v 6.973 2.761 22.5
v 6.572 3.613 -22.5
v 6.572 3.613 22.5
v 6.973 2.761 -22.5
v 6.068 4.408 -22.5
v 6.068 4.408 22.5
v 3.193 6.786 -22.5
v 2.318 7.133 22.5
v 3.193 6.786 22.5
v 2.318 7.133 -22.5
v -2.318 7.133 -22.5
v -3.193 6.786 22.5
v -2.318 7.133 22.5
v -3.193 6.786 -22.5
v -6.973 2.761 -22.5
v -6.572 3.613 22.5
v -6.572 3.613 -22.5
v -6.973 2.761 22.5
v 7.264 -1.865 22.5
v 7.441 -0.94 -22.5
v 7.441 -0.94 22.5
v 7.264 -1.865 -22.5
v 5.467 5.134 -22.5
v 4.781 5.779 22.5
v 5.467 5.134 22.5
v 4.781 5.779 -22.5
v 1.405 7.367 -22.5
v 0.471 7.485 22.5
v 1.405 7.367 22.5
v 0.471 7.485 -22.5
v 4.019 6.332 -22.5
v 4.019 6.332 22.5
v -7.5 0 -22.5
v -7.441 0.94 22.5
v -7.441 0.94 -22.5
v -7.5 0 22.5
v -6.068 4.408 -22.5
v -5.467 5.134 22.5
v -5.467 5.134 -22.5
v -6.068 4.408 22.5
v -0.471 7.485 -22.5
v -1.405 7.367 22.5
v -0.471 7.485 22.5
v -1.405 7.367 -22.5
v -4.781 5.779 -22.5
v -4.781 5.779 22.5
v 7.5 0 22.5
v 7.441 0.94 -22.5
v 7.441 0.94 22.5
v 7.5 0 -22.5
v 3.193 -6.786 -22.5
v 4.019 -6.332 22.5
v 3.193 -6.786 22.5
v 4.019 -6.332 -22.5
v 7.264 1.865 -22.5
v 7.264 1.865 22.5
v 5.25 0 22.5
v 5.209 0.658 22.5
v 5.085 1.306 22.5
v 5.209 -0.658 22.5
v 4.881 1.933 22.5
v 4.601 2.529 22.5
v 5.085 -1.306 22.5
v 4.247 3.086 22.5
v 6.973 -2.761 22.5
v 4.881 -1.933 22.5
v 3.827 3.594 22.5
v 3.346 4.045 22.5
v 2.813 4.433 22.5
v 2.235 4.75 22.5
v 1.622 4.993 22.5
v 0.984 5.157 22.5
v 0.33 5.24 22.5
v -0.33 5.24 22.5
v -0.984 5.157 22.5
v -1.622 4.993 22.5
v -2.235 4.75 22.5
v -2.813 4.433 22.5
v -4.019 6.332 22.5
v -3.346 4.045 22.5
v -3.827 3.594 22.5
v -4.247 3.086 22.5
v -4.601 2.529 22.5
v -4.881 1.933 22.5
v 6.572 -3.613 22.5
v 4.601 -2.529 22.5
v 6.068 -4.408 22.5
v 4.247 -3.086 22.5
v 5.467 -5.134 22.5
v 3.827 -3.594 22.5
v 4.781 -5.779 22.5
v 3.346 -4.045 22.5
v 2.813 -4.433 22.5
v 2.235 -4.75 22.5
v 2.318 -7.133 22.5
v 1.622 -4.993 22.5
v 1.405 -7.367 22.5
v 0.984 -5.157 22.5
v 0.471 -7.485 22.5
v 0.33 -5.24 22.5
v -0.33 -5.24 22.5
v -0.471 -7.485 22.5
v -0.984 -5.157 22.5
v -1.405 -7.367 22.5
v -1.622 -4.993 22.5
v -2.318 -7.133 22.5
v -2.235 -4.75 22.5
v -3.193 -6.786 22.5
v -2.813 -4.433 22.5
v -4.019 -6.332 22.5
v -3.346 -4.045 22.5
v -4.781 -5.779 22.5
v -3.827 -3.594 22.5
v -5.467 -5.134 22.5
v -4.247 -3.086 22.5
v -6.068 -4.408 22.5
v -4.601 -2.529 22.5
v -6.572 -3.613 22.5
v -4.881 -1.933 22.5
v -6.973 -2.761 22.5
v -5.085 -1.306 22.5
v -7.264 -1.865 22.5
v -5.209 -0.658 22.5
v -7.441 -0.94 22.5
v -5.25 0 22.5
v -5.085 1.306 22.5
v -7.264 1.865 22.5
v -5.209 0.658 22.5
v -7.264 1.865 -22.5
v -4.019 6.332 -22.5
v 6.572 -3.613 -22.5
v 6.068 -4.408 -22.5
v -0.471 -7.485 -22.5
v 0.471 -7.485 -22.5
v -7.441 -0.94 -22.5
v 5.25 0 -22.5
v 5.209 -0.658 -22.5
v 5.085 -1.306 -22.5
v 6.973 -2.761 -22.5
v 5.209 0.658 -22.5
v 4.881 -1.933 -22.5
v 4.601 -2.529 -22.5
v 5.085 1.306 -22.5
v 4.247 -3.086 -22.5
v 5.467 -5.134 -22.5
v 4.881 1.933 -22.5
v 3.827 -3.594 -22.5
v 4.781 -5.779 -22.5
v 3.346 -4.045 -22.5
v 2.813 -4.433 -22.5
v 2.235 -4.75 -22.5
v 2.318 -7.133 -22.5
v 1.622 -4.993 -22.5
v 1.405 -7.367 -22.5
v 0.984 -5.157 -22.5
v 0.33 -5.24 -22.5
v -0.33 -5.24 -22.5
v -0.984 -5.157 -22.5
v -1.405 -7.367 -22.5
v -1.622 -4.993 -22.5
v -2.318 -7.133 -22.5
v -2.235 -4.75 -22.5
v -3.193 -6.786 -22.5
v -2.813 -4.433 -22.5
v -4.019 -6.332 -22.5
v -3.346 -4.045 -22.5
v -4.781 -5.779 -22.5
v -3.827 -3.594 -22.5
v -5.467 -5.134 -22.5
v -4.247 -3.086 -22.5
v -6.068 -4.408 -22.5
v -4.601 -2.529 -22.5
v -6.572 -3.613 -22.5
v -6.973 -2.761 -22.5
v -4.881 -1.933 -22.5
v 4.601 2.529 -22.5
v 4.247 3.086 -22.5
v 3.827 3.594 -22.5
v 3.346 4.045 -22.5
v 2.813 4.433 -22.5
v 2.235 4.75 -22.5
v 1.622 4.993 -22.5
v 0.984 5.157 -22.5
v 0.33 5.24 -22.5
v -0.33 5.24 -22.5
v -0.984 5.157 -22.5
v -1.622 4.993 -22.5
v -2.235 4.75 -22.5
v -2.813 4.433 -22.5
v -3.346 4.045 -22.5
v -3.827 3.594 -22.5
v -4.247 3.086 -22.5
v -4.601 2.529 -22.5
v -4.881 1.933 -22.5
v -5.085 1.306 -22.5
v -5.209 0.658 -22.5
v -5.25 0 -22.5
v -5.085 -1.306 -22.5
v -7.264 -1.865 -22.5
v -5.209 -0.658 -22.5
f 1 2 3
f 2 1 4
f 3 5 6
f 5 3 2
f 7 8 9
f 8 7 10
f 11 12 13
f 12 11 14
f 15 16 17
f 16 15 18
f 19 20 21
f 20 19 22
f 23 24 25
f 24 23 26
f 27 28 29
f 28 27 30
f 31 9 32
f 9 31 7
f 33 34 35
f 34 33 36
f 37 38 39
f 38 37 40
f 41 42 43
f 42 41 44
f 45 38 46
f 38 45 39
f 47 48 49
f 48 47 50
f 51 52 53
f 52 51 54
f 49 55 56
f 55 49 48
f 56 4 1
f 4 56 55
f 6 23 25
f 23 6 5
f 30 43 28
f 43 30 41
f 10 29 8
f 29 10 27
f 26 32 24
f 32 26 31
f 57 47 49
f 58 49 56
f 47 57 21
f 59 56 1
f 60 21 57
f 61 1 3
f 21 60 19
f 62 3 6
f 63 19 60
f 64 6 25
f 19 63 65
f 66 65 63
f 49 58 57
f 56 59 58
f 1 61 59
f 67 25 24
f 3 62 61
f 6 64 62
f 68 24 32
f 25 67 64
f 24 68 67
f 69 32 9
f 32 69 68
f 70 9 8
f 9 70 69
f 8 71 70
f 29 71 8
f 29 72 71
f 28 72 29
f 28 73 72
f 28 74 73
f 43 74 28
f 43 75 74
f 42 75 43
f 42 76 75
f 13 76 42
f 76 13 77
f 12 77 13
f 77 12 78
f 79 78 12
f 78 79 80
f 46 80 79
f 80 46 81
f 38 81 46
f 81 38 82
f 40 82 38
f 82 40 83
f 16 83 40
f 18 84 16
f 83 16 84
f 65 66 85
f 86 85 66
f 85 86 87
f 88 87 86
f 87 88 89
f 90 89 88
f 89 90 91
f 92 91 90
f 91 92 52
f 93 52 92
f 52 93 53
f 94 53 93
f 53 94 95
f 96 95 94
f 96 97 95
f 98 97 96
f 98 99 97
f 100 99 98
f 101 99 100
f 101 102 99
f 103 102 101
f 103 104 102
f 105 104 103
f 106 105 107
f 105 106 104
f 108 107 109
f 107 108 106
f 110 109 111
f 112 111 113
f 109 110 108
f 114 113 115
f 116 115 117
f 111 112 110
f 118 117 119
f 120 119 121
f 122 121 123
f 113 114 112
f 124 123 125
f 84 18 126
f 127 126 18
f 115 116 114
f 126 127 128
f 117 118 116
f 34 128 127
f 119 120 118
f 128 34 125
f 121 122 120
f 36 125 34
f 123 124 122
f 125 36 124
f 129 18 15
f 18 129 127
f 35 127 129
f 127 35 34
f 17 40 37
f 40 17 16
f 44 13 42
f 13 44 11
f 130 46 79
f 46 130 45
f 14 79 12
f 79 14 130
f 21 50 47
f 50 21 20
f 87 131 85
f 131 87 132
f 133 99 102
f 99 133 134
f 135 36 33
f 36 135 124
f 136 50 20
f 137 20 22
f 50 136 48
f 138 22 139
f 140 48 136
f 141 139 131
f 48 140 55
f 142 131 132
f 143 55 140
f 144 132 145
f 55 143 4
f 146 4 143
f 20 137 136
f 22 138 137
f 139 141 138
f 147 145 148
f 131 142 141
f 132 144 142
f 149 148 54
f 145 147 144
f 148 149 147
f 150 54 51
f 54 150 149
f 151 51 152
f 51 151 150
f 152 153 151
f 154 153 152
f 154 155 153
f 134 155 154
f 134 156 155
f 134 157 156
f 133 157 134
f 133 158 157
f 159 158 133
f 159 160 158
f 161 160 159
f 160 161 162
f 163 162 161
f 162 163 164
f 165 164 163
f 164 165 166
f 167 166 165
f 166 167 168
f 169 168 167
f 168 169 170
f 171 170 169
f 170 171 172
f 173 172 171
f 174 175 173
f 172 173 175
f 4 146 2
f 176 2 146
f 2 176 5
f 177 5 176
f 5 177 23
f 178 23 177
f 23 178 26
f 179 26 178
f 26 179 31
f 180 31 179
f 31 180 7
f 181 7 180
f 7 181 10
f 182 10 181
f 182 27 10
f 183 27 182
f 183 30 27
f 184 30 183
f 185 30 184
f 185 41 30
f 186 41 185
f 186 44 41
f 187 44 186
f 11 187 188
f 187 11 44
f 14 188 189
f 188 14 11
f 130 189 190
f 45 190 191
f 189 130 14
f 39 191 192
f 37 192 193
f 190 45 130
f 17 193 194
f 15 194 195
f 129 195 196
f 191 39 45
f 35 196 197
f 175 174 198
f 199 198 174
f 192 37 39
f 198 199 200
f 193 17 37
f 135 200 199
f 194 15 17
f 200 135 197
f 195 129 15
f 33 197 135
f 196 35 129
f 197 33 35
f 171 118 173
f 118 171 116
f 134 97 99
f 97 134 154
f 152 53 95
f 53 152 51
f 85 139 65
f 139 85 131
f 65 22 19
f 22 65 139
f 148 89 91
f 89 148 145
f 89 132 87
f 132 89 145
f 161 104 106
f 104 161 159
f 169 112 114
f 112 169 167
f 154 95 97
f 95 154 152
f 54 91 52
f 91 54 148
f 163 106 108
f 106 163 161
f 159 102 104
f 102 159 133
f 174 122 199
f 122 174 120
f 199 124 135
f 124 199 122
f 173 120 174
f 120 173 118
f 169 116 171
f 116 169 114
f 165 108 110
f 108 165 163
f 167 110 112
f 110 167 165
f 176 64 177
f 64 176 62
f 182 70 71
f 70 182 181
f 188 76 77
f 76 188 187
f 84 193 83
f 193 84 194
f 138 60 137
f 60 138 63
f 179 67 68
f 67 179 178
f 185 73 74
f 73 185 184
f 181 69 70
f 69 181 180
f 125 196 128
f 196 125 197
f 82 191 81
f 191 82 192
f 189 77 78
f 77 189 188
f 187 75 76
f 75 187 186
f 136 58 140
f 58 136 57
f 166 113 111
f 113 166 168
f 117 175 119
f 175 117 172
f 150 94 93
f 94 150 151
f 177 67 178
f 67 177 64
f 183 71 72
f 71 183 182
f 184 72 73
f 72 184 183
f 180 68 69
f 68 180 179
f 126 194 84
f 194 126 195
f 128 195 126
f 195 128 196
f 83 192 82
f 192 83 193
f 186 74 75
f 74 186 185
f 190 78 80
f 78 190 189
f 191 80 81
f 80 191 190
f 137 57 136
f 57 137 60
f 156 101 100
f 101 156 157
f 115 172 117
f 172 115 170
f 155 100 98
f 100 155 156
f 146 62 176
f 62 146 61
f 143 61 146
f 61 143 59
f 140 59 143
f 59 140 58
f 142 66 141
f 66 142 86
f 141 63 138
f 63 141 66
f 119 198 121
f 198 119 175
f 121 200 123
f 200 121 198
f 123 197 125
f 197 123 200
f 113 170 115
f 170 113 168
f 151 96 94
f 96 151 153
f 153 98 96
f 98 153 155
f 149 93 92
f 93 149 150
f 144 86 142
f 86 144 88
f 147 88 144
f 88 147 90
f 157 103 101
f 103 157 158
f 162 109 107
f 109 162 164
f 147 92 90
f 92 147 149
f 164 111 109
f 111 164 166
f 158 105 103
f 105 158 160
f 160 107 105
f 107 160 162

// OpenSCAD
$fn = 50;


difference() {
	union() {
		translate(v = [0, 0, -22.5000000000]) {
			cylinder(h = 45, r = 7.5000000000);
		}
	}
	union() {
		translate(v = [0, 0, -100.0000000000]) {
			cylinder(h = 200, r = 5.2500000000);
		}
	}
}
